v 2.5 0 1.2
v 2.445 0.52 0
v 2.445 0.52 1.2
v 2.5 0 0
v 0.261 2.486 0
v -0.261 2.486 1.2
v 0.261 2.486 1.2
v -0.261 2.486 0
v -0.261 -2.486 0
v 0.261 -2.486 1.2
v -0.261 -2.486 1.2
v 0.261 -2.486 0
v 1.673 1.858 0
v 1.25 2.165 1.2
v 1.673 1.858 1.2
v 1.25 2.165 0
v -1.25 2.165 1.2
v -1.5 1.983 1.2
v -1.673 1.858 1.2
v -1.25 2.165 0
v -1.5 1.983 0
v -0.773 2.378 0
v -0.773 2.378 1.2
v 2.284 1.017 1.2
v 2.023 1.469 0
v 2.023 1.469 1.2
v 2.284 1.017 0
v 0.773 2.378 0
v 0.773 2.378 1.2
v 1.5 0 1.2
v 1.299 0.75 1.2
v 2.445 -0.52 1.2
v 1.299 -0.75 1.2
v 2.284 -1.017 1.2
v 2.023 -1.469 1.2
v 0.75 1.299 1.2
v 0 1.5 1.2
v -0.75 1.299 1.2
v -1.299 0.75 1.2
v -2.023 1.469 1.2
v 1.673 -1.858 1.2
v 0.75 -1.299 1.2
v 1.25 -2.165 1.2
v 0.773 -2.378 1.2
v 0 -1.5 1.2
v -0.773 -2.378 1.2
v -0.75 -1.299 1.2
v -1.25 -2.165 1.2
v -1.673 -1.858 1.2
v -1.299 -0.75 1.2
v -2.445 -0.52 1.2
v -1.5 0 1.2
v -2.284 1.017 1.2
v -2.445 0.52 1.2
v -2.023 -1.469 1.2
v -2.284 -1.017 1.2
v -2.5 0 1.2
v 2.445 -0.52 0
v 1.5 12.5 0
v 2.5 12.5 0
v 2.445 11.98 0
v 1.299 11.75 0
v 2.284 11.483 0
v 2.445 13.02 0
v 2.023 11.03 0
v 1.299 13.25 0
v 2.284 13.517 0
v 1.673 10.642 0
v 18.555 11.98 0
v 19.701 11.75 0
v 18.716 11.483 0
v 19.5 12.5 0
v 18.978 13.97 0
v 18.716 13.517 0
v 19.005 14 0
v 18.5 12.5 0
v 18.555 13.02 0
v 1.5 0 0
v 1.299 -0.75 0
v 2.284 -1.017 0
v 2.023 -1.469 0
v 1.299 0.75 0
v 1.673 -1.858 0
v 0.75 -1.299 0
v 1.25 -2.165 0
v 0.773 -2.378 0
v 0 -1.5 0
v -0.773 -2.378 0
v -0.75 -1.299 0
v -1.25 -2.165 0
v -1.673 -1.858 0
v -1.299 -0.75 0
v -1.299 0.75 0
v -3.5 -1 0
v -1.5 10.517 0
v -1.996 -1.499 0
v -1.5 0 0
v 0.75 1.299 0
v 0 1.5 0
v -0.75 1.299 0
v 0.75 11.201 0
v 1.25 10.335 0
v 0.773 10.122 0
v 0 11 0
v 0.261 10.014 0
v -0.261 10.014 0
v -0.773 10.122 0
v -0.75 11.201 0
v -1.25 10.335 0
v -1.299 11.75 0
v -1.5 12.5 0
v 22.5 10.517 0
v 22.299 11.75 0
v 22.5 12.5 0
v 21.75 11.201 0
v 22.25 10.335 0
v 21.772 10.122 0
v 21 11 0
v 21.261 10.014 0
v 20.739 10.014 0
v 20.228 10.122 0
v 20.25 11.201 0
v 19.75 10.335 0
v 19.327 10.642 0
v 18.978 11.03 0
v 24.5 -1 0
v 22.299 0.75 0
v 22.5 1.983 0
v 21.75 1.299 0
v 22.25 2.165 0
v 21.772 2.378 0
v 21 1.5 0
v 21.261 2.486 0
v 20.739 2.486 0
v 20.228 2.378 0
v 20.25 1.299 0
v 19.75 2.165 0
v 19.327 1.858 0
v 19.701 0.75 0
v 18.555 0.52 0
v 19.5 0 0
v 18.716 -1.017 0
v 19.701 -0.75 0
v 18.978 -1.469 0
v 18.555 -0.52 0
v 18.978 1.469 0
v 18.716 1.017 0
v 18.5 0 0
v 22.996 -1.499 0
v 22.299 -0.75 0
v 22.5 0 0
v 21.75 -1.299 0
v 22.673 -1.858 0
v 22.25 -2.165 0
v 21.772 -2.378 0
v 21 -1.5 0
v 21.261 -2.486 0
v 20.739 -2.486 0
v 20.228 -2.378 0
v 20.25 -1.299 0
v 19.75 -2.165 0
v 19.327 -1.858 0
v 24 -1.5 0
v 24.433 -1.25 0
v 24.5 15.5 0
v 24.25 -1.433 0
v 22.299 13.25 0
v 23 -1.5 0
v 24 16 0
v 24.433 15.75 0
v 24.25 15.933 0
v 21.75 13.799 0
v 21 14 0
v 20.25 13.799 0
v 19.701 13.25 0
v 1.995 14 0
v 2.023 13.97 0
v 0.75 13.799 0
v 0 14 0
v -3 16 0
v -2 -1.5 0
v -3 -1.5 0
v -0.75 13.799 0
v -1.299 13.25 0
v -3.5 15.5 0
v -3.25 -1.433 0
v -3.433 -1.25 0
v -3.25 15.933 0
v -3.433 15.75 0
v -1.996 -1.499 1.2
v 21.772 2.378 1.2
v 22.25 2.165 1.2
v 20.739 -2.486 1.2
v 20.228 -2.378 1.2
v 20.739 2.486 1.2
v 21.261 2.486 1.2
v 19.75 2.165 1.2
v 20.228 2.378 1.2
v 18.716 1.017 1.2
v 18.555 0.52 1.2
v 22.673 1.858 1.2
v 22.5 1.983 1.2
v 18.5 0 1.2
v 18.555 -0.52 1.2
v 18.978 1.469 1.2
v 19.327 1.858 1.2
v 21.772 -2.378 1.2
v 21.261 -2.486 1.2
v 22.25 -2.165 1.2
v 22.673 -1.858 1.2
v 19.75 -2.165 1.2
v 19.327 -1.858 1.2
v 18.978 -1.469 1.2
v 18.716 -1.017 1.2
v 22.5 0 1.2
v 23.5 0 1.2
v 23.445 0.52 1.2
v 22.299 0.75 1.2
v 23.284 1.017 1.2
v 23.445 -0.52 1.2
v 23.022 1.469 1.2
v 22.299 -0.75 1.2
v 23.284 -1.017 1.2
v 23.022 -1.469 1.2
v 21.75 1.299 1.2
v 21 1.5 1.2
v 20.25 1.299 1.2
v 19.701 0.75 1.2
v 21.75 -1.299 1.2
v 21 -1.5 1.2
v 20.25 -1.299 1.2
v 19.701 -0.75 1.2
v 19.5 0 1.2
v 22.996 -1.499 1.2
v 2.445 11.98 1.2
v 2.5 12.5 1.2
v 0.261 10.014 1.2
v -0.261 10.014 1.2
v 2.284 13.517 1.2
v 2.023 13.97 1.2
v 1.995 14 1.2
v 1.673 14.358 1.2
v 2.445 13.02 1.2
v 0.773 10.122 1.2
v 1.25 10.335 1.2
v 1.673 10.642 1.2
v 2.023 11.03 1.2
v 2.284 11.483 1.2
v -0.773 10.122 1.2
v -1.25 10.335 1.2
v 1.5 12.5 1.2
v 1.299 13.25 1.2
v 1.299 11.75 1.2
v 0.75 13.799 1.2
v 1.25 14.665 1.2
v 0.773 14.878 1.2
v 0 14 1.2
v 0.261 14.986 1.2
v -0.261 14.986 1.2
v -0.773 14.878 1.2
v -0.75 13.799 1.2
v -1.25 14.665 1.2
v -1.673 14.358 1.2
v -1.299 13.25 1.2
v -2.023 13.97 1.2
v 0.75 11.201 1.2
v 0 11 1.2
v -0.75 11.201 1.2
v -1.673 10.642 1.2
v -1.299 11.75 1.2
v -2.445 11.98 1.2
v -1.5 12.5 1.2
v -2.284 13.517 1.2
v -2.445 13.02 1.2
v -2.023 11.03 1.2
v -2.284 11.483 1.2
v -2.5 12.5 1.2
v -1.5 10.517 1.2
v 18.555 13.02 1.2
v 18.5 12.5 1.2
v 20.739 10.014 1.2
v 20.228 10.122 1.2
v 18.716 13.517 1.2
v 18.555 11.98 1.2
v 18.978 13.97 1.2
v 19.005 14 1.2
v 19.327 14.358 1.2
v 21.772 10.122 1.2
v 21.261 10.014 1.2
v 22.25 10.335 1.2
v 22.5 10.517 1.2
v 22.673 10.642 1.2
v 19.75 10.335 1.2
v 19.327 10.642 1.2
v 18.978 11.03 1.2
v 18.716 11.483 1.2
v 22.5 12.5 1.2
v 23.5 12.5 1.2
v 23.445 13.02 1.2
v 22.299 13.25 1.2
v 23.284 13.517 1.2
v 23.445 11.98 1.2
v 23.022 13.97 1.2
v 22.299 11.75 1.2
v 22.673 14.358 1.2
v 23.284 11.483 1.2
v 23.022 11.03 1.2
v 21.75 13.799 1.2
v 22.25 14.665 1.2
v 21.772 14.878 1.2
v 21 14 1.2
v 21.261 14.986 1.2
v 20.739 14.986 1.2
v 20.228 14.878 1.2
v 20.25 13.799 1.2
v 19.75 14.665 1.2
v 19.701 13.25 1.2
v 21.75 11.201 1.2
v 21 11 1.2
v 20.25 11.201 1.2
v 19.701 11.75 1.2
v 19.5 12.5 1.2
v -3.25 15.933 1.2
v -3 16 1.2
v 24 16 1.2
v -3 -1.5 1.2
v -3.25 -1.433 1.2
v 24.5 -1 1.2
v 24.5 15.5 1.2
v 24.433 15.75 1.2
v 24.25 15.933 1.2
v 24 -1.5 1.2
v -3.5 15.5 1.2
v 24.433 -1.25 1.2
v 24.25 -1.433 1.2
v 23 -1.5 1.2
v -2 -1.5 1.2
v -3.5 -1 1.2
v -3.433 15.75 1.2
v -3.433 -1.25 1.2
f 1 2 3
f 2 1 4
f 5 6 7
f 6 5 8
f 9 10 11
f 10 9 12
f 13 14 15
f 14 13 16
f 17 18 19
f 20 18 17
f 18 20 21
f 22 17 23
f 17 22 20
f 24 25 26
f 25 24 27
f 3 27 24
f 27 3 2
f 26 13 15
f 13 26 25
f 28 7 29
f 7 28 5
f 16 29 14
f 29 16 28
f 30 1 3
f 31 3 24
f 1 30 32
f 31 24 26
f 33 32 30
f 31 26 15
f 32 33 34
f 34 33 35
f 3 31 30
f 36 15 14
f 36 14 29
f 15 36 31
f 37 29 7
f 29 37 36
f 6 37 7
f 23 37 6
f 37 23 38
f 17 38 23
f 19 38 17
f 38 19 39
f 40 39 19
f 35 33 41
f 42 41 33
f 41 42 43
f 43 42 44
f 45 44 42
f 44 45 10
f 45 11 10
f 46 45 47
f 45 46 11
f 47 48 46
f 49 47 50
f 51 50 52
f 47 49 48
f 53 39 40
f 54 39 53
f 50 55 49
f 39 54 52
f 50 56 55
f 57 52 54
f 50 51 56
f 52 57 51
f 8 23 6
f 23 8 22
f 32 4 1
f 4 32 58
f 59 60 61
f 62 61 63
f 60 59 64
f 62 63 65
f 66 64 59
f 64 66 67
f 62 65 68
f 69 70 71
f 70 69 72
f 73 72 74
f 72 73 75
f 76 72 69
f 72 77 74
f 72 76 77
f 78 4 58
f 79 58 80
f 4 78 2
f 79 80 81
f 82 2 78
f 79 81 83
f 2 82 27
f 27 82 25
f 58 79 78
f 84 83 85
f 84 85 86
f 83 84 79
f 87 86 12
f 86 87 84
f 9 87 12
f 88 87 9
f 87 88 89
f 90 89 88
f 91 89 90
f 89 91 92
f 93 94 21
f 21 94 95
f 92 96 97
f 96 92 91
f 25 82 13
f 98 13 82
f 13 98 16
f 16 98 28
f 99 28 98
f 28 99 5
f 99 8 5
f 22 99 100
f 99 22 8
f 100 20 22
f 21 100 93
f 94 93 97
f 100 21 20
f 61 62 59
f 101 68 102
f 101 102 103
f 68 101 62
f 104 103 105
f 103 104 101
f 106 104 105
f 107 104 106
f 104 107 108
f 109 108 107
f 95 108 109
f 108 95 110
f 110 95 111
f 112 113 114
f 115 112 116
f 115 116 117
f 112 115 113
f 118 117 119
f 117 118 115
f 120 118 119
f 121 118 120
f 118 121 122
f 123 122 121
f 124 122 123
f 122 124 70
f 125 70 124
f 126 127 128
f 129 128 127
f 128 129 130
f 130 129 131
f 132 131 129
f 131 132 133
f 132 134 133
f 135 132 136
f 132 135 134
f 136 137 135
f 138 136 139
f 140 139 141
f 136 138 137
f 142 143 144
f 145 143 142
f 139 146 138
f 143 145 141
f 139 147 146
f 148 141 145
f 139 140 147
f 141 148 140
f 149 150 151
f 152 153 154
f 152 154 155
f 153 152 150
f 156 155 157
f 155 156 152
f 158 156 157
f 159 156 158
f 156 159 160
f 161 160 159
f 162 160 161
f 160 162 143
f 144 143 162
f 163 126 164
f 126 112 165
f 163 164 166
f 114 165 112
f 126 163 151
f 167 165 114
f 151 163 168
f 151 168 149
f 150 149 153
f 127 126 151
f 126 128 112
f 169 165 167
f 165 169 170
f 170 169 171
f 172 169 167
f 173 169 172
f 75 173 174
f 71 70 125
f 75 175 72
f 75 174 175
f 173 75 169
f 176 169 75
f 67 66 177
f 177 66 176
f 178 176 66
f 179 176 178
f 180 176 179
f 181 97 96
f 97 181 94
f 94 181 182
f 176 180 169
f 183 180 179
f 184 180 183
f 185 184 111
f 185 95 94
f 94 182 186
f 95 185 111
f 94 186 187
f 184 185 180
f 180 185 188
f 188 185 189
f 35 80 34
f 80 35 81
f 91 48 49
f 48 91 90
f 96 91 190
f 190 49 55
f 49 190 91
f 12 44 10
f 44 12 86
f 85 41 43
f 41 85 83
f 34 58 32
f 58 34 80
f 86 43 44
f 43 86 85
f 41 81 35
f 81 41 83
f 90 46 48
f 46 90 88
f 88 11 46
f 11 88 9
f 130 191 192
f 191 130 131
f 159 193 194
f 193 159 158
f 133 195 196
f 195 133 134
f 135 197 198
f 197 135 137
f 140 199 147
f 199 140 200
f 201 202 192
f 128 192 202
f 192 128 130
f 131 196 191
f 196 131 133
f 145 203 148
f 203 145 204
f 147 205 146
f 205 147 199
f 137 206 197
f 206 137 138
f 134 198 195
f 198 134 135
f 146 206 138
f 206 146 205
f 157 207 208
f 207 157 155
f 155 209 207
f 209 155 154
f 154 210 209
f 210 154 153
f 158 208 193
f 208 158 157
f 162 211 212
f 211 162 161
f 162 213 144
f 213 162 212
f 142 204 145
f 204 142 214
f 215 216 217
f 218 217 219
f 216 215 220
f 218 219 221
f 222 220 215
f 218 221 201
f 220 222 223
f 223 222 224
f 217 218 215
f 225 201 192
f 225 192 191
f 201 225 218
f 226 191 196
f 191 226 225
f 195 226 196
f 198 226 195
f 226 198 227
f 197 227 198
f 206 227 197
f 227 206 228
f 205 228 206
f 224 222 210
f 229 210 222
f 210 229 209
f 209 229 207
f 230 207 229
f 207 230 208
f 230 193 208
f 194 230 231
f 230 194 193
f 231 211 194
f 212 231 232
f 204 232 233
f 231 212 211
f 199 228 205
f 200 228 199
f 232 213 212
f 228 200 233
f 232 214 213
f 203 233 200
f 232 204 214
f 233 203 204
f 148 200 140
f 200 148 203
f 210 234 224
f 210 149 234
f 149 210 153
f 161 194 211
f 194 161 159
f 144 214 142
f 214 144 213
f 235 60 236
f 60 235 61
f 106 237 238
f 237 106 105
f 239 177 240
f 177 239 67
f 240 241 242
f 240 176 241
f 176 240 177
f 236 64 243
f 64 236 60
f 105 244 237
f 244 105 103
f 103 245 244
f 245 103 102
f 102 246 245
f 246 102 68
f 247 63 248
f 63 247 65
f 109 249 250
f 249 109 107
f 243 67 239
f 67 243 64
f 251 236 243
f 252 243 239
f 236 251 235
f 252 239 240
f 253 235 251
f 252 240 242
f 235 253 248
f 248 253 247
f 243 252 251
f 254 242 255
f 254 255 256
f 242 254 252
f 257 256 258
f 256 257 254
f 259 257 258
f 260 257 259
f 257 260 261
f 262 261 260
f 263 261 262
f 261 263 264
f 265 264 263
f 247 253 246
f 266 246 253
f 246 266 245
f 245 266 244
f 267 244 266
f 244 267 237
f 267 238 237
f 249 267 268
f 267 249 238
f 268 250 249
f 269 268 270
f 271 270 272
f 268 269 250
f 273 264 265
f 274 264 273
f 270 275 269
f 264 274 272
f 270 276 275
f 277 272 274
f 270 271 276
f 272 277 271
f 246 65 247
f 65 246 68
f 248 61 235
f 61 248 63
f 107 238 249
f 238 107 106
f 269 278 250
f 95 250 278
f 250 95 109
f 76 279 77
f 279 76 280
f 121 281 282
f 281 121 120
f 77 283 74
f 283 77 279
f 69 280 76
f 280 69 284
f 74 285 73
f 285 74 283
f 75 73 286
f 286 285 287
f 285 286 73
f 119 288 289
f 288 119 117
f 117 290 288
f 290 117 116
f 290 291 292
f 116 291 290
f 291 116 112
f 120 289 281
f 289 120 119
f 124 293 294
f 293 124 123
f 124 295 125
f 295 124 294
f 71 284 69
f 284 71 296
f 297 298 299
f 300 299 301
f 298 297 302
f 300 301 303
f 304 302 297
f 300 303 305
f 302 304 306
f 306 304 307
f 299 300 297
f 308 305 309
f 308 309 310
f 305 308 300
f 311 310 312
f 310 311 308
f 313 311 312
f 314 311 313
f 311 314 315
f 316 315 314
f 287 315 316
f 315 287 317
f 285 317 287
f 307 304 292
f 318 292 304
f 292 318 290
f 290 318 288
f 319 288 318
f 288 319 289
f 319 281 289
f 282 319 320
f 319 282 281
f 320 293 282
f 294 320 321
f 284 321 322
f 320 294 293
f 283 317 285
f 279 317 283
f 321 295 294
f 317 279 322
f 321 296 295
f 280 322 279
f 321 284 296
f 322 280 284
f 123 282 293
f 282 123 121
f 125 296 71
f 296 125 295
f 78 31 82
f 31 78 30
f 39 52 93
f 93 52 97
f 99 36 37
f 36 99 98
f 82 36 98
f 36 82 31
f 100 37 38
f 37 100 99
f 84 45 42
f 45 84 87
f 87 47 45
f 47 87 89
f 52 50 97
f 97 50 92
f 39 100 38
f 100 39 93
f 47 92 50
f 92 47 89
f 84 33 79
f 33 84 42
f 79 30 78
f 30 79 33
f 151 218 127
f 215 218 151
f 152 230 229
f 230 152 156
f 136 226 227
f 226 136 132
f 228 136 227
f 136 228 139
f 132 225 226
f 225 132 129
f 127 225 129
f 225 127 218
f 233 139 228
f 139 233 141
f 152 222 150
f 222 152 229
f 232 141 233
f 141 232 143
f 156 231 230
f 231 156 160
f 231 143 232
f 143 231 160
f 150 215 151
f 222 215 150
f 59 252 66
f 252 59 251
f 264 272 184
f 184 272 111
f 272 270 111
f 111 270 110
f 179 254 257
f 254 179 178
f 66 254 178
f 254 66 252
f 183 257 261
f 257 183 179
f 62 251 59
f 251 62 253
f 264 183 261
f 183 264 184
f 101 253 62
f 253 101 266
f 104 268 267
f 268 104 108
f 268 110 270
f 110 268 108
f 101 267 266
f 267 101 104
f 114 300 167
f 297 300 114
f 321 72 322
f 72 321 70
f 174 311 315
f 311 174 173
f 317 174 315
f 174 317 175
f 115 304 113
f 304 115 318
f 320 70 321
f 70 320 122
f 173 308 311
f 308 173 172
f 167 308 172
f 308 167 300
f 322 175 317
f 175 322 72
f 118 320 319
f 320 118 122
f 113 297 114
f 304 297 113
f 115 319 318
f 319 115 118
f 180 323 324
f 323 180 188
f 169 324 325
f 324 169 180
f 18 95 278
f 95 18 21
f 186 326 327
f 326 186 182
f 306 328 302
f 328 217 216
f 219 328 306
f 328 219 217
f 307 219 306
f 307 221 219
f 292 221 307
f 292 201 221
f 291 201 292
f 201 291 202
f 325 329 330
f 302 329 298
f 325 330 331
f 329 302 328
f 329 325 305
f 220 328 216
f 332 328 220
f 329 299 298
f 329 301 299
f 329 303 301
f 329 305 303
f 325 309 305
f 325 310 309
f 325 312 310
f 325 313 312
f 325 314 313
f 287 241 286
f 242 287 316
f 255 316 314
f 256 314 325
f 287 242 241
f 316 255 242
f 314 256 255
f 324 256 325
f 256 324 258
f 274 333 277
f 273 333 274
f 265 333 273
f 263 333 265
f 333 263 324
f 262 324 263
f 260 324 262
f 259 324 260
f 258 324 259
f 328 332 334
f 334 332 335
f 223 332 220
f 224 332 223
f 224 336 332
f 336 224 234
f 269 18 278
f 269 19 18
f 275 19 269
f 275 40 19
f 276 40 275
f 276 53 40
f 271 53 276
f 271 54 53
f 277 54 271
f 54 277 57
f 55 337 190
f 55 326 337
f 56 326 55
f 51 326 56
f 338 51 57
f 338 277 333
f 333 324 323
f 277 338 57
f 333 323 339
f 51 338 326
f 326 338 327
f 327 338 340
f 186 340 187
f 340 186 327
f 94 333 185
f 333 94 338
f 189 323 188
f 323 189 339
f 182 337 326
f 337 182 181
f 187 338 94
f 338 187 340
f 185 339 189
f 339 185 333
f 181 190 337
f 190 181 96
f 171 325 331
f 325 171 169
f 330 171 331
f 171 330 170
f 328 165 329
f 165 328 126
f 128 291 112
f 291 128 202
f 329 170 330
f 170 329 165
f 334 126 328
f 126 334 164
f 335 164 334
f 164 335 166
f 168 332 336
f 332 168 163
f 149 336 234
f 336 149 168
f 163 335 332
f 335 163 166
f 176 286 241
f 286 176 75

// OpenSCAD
height = 1.2;//mm

difference(){
	union(){
		translate([0,0,0])
			cylinder(height,2.5,2.5, $fn=30);
		translate([21,0,0])
			cylinder(height,2.5,2.5, $fn=30);
		translate([0,12.5,0])
			cylinder(height,2.5,2.5, $fn=30);
		translate([21,12.5,0])
			cylinder(height,2.5,2.5, $fn=30);
	}//union

	translate([0,0,0])
		cylinder(5,1.5,1.5, $fn=12);
	translate([21,0,0])
		cylinder(5,1.5,1.5, $fn=12);
	translate([0,12.5,0])
		cylinder(5,1.5,1.5, $fn=12);
	translate([21,12.5,0])
		cylinder(5,1.5,1.5, $fn=12);
}

translate([-3,-1,0])
	minkowski(){
		cube([1,16.5,height/2]);
		cylinder(height/2,0.5,0.5, $fn=12);
	}
translate([23,-1,0])
	minkowski(){
		cube([1,16.5,height/2]);
		cylinder(height/2,0.5,0.5, $fn=12);
	}
translate([-3,14.5,0])
	minkowski(){
		cube([27,1,height/2]);
		cylinder(height/2,0.5,0.5, $fn=12);
	}
